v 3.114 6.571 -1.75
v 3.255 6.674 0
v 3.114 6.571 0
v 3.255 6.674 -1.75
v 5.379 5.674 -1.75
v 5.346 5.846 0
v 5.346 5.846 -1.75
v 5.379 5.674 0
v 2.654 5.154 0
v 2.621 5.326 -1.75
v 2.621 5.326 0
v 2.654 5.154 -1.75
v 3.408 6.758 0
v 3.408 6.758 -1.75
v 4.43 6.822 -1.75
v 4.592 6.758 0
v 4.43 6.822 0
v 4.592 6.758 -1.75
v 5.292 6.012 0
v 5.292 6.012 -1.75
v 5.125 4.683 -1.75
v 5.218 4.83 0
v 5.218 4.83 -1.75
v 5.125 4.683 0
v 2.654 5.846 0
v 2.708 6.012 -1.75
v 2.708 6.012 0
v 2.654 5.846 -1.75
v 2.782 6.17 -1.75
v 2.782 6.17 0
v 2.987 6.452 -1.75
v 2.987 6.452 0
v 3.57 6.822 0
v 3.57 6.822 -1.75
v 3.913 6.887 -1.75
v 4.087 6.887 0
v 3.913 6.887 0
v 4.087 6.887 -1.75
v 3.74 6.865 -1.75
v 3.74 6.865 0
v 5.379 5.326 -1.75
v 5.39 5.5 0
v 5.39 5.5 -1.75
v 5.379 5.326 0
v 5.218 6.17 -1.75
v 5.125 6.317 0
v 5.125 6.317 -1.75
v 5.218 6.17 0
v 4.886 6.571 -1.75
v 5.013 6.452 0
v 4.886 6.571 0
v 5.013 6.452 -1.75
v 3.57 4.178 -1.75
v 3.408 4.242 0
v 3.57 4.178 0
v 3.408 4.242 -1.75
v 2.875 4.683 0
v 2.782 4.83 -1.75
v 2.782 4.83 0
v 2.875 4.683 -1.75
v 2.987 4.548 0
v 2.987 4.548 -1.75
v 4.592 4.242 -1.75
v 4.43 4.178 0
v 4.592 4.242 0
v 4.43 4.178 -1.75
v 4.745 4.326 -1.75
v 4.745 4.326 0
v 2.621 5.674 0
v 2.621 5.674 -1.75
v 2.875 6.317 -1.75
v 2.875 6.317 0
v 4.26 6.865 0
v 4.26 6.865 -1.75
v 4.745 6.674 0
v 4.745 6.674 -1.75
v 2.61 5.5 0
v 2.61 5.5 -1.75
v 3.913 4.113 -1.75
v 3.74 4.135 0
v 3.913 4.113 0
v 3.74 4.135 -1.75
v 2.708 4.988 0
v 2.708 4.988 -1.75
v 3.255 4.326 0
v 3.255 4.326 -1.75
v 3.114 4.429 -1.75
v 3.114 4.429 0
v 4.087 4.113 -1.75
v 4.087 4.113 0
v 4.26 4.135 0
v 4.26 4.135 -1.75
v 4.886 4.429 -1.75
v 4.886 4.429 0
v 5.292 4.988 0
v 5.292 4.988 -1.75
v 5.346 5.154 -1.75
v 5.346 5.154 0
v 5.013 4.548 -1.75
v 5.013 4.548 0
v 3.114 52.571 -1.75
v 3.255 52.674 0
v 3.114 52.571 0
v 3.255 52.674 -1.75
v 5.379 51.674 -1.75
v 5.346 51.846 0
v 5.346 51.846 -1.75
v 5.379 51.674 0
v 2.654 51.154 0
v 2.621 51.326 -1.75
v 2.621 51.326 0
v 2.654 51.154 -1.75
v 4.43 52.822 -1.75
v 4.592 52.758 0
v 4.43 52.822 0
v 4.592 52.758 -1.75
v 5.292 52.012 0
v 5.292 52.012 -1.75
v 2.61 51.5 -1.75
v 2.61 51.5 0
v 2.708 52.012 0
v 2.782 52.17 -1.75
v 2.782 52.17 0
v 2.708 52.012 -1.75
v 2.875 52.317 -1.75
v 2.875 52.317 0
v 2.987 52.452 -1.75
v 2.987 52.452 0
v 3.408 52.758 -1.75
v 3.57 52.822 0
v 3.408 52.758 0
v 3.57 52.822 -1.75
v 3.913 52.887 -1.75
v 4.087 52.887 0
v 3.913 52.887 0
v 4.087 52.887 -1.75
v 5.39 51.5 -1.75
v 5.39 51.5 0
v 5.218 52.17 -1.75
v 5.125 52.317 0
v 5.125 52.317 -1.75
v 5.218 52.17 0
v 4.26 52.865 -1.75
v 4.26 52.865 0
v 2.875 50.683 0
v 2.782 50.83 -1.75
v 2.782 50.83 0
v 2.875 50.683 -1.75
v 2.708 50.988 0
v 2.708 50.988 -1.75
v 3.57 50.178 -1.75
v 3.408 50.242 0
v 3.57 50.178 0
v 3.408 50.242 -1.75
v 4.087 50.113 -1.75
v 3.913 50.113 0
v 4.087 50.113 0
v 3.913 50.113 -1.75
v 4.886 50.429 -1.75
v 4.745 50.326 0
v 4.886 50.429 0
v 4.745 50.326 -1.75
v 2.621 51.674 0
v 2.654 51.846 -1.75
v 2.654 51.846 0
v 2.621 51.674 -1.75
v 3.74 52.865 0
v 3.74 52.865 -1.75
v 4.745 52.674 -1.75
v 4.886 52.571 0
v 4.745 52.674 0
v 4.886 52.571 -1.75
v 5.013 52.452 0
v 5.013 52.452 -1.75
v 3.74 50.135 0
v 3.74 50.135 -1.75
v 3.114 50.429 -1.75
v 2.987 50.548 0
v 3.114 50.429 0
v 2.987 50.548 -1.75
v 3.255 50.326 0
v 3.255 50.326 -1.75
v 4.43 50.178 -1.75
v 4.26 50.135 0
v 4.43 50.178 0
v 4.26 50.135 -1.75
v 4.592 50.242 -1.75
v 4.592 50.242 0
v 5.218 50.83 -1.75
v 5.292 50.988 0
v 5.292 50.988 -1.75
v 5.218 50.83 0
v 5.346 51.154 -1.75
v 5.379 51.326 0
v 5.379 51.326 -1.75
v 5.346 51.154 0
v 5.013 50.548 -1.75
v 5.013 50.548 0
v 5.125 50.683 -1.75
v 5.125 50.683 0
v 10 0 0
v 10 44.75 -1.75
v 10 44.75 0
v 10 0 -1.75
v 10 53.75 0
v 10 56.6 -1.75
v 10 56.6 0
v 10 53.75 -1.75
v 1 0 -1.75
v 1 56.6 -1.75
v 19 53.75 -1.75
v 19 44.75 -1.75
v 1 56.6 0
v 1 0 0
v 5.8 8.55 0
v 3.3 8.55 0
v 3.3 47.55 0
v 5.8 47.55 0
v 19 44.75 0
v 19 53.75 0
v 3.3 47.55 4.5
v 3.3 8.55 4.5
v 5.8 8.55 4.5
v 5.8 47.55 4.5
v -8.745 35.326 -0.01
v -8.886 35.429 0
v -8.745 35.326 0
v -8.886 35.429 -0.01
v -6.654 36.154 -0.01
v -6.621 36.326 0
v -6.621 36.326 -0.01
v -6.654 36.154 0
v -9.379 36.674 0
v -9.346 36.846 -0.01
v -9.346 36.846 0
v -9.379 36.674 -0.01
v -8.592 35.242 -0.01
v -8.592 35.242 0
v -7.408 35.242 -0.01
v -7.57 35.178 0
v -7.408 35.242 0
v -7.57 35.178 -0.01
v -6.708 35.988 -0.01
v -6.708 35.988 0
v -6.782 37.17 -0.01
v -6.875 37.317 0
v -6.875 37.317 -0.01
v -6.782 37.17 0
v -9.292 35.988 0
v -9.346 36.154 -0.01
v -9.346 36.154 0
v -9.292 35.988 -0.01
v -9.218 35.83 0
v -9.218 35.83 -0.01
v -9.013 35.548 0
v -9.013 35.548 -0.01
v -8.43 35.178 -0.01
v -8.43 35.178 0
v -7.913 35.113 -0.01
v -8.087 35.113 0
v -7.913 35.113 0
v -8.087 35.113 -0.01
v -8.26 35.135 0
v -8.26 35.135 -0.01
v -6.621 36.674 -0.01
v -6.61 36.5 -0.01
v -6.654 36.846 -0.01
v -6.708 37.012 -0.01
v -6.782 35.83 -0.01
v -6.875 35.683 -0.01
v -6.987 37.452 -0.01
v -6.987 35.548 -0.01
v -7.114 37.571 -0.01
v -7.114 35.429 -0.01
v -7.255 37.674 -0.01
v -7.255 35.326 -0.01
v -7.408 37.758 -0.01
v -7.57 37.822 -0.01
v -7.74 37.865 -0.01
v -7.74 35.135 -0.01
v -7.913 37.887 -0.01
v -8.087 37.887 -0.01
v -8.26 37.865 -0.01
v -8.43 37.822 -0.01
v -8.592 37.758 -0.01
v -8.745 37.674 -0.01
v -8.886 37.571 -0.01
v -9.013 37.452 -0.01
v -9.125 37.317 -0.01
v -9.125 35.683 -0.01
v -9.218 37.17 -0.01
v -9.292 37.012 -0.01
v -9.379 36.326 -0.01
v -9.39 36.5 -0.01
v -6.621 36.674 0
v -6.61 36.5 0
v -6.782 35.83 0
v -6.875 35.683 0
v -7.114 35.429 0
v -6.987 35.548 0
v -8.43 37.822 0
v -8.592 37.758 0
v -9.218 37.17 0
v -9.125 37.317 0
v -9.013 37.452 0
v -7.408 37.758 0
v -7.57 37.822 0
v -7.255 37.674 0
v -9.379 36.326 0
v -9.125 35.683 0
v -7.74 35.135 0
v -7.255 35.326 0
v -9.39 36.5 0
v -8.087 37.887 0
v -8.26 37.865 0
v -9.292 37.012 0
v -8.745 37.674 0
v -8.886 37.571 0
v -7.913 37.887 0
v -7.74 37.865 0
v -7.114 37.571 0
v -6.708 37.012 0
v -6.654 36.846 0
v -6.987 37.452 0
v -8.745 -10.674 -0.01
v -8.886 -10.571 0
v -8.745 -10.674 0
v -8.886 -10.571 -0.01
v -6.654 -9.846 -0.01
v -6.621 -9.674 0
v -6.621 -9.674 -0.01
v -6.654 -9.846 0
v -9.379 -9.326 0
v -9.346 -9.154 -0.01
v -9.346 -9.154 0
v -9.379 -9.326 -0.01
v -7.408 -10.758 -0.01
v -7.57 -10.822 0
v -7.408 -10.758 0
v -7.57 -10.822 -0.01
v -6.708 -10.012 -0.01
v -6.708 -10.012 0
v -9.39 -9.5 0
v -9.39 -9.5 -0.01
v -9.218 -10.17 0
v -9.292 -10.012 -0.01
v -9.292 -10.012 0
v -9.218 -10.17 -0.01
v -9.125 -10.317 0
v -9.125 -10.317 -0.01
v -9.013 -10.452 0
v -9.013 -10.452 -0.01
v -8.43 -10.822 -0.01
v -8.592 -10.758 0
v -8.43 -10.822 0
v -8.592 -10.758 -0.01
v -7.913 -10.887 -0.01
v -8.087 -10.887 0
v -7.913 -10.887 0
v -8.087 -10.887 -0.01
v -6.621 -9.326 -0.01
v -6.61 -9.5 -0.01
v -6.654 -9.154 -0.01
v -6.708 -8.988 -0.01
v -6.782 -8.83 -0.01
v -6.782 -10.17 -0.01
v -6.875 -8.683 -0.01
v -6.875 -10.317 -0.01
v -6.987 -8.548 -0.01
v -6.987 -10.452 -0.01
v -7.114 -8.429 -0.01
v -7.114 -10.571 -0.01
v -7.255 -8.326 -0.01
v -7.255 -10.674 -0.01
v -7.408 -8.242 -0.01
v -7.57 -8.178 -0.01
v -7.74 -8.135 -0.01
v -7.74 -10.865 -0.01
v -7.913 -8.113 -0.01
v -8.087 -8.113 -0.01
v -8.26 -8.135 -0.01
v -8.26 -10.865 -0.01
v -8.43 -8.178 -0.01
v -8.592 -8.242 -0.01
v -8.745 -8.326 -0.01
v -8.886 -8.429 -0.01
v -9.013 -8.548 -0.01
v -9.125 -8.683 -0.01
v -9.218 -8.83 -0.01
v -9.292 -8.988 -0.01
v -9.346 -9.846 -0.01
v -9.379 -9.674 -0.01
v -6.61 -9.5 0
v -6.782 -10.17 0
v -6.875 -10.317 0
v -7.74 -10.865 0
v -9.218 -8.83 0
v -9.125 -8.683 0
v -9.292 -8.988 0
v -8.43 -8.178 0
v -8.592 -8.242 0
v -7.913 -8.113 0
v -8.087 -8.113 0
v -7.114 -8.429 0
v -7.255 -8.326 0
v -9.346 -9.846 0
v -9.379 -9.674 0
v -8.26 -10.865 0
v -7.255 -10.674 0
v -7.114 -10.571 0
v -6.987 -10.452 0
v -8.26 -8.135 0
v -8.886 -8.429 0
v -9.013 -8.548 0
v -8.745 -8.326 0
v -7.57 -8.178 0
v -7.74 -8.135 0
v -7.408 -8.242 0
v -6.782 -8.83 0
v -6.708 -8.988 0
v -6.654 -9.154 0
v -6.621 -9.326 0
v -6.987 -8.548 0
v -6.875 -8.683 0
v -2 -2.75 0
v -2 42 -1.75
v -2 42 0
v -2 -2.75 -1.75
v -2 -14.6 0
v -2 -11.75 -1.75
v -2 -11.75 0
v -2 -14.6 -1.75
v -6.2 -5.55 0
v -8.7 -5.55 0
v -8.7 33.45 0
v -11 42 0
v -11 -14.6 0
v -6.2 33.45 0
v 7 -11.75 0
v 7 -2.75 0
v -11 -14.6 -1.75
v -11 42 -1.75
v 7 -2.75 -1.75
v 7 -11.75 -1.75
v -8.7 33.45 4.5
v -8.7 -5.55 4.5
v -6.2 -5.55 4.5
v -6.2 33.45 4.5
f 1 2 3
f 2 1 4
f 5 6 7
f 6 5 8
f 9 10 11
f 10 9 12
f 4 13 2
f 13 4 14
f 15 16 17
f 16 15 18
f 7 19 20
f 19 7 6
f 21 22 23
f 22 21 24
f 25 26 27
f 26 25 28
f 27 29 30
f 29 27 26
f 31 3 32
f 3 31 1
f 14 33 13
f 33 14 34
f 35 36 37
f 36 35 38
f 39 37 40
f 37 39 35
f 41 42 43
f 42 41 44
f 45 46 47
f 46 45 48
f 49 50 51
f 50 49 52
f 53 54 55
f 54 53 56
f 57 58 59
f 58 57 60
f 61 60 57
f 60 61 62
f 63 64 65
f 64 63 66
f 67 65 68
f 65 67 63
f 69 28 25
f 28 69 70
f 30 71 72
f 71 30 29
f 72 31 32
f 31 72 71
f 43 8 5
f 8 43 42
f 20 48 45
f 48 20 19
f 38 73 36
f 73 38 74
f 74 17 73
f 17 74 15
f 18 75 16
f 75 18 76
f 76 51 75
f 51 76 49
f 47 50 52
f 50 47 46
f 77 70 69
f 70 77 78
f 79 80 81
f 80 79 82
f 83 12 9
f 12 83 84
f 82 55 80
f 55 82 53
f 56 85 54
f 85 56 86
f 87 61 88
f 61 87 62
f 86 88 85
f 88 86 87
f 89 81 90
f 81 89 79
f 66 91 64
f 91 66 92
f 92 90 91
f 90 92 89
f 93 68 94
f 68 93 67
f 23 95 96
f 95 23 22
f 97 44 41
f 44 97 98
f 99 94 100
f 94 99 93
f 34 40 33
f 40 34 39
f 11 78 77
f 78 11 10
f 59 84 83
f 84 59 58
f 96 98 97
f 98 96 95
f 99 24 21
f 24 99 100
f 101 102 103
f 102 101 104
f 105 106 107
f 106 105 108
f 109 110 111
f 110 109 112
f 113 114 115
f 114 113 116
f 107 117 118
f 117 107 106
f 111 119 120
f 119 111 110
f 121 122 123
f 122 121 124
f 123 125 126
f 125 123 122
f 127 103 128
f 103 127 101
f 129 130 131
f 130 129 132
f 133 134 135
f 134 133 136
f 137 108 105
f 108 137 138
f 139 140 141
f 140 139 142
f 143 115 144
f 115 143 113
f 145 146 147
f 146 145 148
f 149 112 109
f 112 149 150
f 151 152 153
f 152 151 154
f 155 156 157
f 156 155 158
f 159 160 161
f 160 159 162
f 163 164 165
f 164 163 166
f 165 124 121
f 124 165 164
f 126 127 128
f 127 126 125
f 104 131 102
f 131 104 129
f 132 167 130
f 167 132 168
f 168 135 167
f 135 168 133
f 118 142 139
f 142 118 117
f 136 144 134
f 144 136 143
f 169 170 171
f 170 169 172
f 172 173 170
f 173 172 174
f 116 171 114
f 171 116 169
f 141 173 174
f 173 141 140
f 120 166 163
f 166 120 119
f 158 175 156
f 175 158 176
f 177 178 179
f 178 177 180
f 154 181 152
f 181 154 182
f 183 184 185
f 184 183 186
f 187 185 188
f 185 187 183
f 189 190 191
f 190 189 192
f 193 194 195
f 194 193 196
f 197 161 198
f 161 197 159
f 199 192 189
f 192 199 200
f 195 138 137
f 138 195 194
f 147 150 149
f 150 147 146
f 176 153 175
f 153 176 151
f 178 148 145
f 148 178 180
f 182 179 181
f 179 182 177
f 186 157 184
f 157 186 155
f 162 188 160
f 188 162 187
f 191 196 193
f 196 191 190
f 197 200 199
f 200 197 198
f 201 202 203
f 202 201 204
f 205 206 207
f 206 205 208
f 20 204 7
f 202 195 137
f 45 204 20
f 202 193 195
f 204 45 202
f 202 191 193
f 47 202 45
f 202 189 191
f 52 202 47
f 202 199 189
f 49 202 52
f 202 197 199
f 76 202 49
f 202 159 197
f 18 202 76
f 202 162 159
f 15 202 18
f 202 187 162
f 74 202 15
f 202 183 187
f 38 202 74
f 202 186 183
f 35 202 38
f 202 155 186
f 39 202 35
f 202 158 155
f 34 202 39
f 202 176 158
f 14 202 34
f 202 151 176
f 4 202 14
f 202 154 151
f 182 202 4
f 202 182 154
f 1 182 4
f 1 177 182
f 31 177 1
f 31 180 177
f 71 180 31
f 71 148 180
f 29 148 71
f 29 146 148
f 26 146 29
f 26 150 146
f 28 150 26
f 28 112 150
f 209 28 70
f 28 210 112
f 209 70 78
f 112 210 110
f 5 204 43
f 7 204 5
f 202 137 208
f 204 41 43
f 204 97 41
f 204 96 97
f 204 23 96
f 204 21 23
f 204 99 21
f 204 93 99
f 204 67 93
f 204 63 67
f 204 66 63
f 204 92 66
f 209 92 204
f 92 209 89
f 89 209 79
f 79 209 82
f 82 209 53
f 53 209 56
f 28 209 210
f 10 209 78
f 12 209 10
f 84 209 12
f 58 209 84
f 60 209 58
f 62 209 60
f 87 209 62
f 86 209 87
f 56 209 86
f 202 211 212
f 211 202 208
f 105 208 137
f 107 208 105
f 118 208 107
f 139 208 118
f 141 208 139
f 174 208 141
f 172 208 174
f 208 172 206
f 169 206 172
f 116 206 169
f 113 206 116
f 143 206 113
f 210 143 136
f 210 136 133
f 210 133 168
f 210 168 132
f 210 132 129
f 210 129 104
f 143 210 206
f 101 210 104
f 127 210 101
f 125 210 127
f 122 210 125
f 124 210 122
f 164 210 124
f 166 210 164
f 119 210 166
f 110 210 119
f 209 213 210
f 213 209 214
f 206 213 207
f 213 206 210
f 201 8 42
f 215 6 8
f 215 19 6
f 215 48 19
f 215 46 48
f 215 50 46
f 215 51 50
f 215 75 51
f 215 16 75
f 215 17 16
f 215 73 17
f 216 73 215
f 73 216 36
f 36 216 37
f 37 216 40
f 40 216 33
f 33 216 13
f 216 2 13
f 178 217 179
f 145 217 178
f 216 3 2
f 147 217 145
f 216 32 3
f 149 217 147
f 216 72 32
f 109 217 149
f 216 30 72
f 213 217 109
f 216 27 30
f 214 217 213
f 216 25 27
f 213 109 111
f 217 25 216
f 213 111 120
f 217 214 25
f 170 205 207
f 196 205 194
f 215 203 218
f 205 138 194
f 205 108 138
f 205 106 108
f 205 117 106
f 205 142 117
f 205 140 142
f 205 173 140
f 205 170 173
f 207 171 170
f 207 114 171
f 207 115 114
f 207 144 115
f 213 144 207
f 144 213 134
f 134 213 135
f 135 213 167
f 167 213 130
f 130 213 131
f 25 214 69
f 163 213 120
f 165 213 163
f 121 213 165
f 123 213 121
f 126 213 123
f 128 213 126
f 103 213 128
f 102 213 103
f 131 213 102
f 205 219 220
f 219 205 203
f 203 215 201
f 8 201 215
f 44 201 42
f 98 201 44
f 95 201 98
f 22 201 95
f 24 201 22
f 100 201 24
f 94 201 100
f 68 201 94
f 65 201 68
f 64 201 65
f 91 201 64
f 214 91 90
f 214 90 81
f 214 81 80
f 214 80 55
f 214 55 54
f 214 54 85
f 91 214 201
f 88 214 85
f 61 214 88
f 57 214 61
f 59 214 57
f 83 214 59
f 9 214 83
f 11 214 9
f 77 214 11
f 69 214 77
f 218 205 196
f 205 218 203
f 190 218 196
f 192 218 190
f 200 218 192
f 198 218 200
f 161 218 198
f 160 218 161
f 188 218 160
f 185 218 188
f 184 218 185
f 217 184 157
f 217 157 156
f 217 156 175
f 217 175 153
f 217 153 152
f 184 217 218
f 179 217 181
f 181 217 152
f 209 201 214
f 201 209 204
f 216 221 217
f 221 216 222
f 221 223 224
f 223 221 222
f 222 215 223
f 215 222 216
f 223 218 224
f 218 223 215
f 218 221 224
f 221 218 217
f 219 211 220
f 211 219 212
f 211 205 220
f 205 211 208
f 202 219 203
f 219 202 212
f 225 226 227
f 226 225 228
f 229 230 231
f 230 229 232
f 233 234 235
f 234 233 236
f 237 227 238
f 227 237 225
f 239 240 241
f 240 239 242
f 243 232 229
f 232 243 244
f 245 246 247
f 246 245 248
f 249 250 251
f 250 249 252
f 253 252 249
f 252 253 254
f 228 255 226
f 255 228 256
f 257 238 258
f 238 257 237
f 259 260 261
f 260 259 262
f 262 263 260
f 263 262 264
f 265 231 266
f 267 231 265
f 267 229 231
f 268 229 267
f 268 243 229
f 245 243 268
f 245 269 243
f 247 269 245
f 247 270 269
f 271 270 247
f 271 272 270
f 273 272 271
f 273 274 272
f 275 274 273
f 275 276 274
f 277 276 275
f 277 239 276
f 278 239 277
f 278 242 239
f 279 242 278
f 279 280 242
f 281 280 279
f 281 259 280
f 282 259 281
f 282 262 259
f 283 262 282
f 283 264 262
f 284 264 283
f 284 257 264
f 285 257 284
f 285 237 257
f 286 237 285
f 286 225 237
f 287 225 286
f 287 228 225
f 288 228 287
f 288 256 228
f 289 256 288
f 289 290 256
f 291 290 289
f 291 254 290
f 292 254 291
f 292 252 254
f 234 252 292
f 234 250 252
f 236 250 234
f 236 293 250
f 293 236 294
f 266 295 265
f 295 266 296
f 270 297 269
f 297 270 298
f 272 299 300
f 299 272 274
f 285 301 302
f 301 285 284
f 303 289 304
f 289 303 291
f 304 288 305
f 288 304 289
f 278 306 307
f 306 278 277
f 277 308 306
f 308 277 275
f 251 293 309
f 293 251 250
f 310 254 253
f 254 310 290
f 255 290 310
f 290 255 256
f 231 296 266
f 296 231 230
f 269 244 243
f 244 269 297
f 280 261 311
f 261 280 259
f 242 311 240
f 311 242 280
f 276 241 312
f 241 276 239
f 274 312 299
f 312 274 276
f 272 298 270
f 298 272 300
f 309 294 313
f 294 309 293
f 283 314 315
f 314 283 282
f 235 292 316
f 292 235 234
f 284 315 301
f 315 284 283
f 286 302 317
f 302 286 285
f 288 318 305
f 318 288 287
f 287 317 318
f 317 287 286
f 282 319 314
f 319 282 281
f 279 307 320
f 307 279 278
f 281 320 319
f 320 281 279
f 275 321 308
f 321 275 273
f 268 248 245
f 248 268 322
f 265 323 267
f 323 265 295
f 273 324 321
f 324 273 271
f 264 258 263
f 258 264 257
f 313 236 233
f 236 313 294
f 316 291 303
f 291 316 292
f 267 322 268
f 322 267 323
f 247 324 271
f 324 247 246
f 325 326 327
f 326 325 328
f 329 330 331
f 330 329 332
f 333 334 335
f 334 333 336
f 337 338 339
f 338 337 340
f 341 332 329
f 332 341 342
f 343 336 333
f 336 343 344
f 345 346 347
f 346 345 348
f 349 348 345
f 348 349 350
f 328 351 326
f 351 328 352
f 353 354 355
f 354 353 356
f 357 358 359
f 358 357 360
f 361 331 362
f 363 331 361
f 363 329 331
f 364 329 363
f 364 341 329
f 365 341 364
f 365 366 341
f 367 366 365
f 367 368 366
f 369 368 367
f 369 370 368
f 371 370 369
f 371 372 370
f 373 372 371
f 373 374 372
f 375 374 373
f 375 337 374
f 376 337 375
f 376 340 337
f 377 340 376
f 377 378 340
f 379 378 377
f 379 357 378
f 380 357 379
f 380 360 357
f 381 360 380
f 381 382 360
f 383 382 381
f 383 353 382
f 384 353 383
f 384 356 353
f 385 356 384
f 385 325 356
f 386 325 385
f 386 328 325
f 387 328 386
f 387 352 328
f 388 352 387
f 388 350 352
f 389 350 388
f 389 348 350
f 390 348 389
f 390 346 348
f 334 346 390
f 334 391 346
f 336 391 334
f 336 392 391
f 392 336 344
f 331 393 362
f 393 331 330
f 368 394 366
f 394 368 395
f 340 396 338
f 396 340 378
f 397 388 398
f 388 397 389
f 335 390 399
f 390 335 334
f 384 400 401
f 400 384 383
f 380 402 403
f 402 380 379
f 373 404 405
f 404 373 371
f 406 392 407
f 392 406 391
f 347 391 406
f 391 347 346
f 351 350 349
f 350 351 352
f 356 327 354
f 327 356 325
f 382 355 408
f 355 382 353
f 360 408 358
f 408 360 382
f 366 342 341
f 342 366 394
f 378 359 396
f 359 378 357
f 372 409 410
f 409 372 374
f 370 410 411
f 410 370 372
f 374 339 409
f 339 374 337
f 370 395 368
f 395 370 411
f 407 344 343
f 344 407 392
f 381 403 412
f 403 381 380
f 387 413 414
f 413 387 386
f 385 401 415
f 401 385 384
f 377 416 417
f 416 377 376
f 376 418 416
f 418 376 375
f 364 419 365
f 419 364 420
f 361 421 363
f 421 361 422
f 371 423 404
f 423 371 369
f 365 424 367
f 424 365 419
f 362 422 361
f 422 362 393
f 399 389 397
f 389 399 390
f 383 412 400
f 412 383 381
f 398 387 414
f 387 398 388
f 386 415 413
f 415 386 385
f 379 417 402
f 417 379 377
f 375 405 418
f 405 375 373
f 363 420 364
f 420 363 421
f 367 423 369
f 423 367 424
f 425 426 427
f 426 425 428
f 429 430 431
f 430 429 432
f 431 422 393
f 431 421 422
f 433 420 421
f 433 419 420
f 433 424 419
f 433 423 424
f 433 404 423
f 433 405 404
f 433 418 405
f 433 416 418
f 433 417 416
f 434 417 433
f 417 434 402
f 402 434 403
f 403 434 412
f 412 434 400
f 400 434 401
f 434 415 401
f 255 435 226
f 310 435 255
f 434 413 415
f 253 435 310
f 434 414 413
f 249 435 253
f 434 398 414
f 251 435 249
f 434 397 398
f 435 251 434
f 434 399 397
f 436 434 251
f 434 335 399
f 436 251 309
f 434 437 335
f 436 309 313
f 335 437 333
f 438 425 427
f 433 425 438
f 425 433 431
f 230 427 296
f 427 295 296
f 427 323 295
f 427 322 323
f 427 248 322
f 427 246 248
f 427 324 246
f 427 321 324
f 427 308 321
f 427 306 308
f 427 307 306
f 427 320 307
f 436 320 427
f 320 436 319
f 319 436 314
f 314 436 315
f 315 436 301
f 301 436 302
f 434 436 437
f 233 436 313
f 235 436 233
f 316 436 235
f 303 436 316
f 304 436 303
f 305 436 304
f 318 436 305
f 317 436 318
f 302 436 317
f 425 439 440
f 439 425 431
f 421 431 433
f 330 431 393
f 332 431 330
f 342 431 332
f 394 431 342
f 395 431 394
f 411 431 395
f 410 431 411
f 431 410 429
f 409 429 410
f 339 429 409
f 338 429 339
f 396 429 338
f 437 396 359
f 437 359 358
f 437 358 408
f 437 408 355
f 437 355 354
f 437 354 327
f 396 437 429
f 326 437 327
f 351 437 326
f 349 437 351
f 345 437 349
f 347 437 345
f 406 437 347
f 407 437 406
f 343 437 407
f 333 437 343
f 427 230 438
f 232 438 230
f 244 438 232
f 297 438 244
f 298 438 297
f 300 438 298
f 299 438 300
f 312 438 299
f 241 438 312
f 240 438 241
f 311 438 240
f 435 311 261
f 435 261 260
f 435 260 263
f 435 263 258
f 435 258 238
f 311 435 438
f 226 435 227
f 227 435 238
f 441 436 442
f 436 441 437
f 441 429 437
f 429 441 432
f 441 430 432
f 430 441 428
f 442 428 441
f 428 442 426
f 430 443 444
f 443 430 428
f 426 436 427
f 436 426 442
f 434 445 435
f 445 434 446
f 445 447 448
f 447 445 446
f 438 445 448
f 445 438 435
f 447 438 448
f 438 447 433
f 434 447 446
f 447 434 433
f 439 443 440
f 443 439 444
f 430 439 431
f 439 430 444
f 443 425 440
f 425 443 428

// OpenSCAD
/* Washers for holding board edges
 * File: cap_strip.scad
 * Author: deh
 * Latest edit: 201701292040
*/

$fn = 50;

screw_dia = 2.78;	// Dia of threads
screw_dia_head = 4.8;	// Dia of screw (pan) head
strip_thick = 1.75;
strip_width = 9;
strip_space = 46;	// Spacing between mounting holes
strip_1stofs= 5.5;	// 1st hole offset
strip_postwid= 5.1;	// Post width
strip_length= strip_space + strip_1stofs + strip_postwid;
stiff_len = 39;
stiff_wid = 4.5;
stiff_thick = 2.5;

module strip()
{
   difference()
   {
      union()
      {
         cube([strip_width, strip_length, strip_thick], false);
         translate([4.2,
                   strip_1stofs + strip_postwid/2 + 0.5,
                   0])
           rotate([0,90,0])
             cube([stiff_wid,stiff_len,stiff_thick], false);
         translate([ -9, 
                     strip_space + strip_1stofs  - strip_postwid/2 - 4.2,
                     0])
             cube([10.5, strip_width, strip_thick], false);
      }

      union()
      {
         translate([6.0, strip_1stofs, -0.01])
           cylinder(d = screw_dia, h = strip_thick + .02, center=false);
         translate([6.0, strip_space + strip_1stofs, -0.01])
           cylinder(d = screw_dia, h = strip_thick + .02, center=false);
      }
   }


}


module strip2()
{
   difference()
   {
      union()
      {
         translate([0,0,-strip_thick])
            cube([strip_width, strip_length, strip_thick], false);

         translate([4.2,
                   strip_1stofs + strip_postwid/2 + 0.5,
                   stiff_wid])
           rotate([0,90,0])
             cube([stiff_wid,stiff_len,stiff_thick], false);

         translate([ -9, 
                     strip_space + strip_1stofs  - strip_postwid/2 - 4.2,
                     -strip_thick])
             cube([10.5, strip_width, strip_thick], false);
      }

      union()
      {
         translate([6.0, strip_1stofs, -0.01])
           cylinder(d = screw_dia, h = strip_thick + .02, center=false);
         translate([6.0, strip_space + strip_1stofs, -0.01])
           cylinder(d = screw_dia, h = strip_thick + .02, center=false);
      }
   }


}

module strips()
{
   translate([10,0,0])
     rotate([0,180,0])strip();
   translate([-2,42,0])
     rotate([0,0,180])strip2();
}

strips();
